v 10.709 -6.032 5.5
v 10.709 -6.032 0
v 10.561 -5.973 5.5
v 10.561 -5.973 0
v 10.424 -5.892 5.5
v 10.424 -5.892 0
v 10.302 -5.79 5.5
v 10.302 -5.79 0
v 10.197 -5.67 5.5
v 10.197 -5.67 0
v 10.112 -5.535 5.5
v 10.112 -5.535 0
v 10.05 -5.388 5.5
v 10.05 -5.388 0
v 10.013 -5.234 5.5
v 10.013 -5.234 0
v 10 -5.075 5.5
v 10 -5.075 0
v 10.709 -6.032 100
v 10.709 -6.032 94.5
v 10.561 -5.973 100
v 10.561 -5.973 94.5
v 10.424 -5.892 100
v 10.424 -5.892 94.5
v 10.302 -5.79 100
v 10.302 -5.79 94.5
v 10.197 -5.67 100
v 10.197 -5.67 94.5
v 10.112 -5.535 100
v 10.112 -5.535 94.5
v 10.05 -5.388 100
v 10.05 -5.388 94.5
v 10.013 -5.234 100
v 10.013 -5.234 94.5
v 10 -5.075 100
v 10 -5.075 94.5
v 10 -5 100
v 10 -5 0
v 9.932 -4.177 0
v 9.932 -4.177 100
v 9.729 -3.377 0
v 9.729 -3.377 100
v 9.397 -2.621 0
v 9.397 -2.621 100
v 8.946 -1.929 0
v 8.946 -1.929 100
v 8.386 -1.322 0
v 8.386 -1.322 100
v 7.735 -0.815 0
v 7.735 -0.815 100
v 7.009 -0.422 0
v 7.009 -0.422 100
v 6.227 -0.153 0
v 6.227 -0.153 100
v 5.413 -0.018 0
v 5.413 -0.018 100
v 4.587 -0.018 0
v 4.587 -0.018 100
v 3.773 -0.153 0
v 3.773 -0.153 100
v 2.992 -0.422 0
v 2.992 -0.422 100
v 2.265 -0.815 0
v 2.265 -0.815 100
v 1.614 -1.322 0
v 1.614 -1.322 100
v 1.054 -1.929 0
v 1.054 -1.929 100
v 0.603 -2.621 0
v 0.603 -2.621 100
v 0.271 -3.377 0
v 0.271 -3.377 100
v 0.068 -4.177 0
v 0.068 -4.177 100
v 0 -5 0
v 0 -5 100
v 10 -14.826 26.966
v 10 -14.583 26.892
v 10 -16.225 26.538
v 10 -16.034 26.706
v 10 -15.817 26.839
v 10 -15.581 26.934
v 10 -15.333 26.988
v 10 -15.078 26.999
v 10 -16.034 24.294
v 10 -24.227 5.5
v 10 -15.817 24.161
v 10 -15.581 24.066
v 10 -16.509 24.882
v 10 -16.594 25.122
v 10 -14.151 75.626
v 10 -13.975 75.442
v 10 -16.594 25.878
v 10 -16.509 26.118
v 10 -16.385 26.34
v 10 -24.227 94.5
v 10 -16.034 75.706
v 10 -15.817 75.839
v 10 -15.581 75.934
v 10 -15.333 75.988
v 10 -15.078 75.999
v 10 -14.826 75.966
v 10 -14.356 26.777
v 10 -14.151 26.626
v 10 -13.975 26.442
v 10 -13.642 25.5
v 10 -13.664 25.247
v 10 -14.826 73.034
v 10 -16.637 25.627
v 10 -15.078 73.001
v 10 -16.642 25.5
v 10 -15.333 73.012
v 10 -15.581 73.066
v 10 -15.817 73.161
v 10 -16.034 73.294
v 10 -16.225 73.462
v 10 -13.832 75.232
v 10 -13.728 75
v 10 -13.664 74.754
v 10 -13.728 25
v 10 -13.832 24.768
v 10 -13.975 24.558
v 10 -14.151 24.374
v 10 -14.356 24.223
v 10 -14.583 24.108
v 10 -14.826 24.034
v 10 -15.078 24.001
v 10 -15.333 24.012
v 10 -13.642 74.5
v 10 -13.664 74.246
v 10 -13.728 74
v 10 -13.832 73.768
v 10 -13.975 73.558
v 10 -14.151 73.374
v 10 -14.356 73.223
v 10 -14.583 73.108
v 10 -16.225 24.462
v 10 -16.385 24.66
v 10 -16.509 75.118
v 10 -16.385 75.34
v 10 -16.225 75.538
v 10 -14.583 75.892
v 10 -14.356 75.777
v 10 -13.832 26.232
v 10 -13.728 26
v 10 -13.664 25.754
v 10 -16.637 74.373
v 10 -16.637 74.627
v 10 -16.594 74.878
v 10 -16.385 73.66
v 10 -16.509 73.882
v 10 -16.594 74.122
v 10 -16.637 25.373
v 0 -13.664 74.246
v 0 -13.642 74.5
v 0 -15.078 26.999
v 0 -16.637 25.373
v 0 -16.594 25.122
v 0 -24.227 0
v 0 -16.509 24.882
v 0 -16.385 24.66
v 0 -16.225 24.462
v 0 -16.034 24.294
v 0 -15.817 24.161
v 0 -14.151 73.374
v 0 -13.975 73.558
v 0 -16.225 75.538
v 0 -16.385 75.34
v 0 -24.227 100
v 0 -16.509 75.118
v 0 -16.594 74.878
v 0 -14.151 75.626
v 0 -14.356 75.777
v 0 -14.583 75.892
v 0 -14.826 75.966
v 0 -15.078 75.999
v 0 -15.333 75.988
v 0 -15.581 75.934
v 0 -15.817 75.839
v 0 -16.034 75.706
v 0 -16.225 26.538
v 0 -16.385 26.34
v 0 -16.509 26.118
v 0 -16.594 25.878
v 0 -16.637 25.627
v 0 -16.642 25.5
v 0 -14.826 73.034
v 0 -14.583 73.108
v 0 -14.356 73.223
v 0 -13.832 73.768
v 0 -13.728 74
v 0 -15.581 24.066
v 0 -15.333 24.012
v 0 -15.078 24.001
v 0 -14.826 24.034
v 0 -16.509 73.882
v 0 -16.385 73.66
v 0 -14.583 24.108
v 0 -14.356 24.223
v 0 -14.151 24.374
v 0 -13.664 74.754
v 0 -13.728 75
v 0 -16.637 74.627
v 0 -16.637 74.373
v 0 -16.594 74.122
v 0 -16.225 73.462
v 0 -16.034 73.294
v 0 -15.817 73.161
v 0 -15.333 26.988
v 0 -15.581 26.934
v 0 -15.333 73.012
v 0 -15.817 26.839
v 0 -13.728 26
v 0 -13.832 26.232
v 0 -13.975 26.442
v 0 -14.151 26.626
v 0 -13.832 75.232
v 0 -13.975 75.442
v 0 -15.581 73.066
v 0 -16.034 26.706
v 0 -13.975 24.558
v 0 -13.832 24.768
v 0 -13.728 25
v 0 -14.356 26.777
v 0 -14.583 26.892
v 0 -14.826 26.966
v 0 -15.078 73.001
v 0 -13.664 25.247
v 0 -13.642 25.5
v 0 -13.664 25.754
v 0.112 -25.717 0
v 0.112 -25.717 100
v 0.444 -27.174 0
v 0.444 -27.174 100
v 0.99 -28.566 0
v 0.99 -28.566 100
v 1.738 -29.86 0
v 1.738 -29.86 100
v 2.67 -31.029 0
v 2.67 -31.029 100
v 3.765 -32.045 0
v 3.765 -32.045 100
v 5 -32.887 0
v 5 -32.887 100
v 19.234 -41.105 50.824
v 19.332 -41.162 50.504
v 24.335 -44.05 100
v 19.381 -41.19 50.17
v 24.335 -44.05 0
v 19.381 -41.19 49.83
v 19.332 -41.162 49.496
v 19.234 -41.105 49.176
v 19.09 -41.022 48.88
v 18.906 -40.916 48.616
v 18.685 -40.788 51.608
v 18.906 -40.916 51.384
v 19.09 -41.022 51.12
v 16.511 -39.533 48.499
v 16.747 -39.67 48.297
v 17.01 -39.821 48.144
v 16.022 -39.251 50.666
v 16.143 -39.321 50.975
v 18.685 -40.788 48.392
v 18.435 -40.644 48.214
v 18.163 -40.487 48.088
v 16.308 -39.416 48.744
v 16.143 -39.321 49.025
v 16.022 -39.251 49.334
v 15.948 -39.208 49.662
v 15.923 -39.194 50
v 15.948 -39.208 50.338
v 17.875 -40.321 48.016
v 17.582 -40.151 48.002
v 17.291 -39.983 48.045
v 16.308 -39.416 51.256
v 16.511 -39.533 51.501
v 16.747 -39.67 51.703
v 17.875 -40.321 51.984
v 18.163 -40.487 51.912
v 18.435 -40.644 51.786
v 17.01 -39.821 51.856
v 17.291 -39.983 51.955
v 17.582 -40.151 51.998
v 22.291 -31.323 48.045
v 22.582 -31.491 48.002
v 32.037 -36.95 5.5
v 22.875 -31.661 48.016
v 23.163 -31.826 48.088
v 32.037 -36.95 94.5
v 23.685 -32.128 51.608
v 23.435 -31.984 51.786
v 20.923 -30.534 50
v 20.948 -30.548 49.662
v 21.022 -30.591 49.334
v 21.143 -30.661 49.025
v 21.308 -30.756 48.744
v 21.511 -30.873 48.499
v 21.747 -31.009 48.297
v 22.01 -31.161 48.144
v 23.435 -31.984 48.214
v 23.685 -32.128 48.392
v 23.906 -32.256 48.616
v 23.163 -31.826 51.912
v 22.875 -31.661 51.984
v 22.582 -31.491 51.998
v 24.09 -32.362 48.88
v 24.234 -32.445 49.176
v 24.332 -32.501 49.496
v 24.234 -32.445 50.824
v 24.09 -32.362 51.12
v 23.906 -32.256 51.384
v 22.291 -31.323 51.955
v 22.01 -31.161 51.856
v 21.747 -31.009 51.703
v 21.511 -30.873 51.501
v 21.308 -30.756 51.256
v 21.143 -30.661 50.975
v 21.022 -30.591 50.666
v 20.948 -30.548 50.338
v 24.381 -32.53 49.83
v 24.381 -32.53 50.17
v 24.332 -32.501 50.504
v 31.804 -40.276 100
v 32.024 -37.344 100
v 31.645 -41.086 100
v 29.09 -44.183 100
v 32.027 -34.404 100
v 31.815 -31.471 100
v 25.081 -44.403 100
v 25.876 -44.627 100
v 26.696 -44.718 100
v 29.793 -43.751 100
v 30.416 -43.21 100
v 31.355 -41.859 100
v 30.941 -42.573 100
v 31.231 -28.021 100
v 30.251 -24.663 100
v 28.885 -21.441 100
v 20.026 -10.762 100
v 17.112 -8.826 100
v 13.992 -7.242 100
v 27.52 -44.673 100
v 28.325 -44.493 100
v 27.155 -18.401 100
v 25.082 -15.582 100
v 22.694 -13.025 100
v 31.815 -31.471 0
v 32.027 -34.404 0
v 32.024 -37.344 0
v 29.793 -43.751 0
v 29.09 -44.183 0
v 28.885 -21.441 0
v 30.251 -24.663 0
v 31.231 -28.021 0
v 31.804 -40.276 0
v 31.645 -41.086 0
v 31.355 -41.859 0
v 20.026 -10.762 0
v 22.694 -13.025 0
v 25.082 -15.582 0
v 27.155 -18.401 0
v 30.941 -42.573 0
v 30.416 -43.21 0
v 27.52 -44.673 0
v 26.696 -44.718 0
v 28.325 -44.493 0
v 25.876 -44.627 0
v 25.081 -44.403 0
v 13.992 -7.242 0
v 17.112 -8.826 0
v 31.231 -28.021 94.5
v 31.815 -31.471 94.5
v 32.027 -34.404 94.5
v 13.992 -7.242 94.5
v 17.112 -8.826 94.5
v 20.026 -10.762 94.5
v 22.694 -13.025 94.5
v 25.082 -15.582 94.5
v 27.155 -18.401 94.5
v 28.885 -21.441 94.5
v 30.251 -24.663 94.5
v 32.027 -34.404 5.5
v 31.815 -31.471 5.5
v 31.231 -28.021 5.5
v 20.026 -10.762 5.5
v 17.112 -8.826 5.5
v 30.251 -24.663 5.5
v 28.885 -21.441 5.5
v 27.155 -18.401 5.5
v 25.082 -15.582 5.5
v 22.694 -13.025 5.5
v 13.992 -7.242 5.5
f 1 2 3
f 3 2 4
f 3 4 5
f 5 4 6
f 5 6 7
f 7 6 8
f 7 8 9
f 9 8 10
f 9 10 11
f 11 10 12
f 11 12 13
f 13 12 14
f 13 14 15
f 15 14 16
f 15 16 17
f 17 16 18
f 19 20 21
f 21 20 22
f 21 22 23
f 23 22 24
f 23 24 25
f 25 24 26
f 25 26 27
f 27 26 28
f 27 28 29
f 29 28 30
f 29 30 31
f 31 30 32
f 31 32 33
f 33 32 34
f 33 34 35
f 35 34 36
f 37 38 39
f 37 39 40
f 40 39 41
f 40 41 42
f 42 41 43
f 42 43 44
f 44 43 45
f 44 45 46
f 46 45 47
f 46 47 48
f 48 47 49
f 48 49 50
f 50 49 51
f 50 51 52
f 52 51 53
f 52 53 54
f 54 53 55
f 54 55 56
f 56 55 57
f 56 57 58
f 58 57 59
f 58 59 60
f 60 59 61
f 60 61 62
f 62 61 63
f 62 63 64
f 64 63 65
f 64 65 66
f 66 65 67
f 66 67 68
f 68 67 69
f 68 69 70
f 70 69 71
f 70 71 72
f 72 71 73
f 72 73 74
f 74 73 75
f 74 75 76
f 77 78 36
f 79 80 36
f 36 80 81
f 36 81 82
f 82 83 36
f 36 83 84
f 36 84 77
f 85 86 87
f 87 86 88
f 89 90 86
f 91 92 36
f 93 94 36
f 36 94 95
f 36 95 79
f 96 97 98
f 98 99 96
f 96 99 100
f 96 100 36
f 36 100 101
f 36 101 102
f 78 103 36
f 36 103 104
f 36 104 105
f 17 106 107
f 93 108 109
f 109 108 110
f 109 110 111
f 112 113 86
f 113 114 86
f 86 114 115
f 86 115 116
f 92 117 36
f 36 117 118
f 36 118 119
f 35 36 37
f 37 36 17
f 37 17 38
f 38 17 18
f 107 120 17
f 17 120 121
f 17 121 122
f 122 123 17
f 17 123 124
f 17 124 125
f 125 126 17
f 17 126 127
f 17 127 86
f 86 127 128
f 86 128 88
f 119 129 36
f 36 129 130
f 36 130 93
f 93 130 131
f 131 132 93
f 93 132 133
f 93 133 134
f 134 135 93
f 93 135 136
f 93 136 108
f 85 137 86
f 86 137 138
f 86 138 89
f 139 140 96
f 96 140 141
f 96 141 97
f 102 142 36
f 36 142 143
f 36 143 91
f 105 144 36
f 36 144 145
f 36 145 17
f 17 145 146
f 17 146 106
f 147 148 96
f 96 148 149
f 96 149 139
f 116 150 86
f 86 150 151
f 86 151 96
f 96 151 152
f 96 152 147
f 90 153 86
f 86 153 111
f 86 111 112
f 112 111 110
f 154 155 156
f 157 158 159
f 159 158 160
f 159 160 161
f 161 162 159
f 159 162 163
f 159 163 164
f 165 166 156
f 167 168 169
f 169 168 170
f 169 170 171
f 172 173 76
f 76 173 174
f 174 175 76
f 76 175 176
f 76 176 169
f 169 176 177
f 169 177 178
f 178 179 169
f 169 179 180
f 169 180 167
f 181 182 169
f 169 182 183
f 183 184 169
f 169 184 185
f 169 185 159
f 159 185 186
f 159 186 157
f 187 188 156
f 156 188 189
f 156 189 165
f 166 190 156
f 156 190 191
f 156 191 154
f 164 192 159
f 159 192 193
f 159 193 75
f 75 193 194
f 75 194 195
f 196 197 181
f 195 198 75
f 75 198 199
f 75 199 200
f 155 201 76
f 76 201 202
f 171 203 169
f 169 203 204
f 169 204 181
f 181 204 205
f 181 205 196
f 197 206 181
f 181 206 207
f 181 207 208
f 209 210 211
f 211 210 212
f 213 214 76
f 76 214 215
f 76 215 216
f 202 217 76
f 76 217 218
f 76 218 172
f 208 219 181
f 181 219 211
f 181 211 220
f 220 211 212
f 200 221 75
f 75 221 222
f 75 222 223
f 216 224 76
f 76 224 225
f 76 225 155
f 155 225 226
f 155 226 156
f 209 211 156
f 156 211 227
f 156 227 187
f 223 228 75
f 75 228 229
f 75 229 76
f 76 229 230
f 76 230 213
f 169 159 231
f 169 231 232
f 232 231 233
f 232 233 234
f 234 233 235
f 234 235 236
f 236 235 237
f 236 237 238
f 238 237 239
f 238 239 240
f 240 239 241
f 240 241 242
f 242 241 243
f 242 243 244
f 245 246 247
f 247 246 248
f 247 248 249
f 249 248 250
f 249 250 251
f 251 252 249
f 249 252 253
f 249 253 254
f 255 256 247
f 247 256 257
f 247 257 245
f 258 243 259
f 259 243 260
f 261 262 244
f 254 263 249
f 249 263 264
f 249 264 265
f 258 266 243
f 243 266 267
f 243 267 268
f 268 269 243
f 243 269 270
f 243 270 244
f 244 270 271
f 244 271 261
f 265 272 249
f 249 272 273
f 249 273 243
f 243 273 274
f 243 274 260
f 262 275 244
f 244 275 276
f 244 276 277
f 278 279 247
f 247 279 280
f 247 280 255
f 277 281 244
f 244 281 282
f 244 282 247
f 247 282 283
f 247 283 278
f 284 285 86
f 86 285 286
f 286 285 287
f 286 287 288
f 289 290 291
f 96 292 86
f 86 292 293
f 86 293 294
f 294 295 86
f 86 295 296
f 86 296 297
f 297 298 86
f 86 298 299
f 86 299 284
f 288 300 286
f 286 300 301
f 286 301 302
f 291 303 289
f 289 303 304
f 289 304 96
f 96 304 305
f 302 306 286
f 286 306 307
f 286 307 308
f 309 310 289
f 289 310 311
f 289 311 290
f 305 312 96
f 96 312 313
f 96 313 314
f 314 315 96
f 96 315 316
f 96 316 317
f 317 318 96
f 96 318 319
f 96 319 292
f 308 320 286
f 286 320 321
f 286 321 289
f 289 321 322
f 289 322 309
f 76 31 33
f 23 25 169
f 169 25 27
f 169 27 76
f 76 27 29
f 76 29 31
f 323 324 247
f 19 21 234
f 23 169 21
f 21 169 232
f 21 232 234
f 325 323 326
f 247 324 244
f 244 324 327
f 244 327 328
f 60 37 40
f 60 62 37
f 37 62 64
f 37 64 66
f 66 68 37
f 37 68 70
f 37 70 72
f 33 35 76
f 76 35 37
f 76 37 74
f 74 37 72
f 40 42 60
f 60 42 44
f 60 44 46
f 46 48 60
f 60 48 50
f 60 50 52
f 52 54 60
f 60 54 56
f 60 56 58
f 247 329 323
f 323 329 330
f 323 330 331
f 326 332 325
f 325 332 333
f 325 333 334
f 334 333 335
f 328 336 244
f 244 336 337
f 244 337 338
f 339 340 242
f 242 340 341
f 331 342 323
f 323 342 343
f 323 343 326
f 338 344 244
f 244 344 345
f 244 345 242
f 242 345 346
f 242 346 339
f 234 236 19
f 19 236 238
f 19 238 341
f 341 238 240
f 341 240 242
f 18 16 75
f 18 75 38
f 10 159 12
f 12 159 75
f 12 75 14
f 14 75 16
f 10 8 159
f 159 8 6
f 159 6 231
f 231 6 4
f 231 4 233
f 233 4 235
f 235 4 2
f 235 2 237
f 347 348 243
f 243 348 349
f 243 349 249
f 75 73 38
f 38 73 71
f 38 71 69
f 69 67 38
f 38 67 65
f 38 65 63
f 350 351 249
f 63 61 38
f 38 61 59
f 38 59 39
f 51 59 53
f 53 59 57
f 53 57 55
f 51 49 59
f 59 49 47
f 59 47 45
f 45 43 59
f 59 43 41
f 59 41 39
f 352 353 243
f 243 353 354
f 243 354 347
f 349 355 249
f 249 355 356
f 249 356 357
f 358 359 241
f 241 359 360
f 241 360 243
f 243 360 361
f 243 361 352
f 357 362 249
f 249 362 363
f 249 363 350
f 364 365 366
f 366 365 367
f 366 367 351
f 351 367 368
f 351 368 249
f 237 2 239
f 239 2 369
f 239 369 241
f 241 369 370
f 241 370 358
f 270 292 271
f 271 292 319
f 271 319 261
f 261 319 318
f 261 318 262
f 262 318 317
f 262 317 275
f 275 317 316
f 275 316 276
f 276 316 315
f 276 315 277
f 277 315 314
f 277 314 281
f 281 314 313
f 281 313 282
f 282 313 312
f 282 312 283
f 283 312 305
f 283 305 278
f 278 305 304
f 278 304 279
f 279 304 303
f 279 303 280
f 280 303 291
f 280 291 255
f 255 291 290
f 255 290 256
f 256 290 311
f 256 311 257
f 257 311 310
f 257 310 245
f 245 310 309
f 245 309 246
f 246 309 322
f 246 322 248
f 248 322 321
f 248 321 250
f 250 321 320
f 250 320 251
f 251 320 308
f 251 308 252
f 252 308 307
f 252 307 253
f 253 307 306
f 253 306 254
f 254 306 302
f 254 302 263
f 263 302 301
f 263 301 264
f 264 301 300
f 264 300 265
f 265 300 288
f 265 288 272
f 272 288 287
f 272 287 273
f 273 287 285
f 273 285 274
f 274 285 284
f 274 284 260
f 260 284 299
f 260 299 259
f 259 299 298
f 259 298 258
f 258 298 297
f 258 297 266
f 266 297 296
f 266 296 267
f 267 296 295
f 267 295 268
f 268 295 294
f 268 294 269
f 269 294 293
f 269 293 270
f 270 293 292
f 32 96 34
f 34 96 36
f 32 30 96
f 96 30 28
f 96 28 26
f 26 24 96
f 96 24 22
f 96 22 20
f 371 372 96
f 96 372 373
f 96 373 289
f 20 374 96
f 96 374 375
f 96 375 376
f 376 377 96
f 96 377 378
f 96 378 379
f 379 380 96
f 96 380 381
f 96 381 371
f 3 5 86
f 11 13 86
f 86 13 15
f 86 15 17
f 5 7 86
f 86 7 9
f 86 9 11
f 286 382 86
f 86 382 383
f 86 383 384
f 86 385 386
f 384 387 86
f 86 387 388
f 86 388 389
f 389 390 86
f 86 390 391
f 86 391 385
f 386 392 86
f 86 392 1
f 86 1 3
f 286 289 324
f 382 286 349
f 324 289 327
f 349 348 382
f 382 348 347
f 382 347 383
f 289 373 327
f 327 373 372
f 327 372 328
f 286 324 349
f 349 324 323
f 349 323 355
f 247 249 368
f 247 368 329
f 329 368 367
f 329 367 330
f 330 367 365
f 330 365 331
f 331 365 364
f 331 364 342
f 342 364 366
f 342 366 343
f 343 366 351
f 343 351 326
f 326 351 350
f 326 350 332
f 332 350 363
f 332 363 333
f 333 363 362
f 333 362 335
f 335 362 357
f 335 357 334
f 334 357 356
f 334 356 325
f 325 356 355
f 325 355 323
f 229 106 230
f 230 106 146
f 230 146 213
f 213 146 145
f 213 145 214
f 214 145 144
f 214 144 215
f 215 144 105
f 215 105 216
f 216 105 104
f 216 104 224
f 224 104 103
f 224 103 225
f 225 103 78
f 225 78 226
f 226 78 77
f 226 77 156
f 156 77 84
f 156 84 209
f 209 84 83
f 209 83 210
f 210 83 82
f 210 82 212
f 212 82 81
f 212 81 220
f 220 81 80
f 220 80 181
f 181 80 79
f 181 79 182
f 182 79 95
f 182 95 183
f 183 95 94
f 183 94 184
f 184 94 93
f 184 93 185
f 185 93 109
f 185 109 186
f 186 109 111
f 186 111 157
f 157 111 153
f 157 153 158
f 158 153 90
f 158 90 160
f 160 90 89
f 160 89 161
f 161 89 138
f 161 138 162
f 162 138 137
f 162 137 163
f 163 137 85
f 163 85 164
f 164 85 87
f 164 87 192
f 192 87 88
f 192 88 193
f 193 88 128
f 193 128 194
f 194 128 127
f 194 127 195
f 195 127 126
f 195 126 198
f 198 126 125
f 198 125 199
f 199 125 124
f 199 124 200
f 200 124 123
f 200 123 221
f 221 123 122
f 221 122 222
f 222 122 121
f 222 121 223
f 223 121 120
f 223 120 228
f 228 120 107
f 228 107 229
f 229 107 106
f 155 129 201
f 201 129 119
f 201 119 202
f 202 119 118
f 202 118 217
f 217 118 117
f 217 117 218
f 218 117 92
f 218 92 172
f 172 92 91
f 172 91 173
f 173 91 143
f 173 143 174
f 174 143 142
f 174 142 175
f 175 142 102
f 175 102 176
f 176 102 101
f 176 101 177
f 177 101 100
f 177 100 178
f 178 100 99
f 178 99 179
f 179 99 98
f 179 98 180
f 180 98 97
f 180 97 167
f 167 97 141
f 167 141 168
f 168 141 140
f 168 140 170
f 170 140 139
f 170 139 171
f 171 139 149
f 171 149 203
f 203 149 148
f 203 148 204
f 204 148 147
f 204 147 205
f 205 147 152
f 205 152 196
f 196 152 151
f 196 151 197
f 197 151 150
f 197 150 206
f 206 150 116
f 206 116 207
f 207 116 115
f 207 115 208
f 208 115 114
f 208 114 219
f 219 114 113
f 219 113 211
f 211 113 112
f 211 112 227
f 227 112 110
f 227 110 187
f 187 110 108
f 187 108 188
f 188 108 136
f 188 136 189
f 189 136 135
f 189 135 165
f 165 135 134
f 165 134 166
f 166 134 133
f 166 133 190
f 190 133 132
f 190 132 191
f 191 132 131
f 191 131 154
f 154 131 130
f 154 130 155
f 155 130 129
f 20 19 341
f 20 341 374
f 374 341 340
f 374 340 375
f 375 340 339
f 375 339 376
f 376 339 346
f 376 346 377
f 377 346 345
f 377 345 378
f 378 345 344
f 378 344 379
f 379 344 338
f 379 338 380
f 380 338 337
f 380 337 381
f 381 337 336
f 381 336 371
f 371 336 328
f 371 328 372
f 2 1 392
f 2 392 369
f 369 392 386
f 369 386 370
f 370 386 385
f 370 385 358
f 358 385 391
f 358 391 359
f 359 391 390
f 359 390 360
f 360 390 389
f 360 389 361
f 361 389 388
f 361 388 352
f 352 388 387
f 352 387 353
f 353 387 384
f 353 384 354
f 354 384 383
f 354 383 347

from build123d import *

# Parameters (mm, degrees)
BOSS_EXTRU_1_DEPTH      = 100
ESQUISSE3_R             = 2
ENL_V_MAT_EXTRU_2_DEPTH = 115.052675119
ESQUISSE7_W             = 5.5
ESQUISSE7_H             = 20.980762114
BOSS_EXTRU_3_DEPTH      = 29.226497
BOSS_EXTRU_4_OUTLINE_W  = 5.5
BOSS_EXTRU_4_OUTLINE_H  = 18.169872981
BOSS_EXTRU_4_DEPTH      = 10.490381057
CONG_2_R                = 40
CONG_3_R                = 40
CONG_4_R                = 5
CONG_5_RADIUS           = 5
CONG_5_LENGTH           = 100
ESQUISSE9_R             = 1.5
ENL_V_MAT_EXTRU_3_DEPTH = 112.741489915
CONG_6_R                = 1
CONG_7_R                = 1
CONG_8_R                = 30


# Read off the part's stored shape, not the designer's step: Boss.-Extru.4
with BuildPart() as part:
    # Esquisse1 → Boss.-Extru.1 (new body)
    with BuildSketch(Plane.XY):
        with BuildLine():
            Line((0, 0), (0, -24.226497308))
            ThreePointArc((0, -24.226497308), (1.339745962, -29.226497308), (5, -32.886751346))
            Line((5, -32.886751346), (30.310889132, -47.5))
            Line((30.310889132, -47.5), (35.310889132, -38.839745962))
            Line((35.310889132, -38.839745962), (10, -24.226497308))
            Line((10, -24.226497308), (10, 0))
            Line((10, 0), (0, 0))
        make_face()
    extrude(amount=BOSS_EXTRU_1_DEPTH)

    # Esquisse3 → Enlèv. mat.-Extru.2 (cut, through all)
    with BuildSketch(Plane(origin=(-7.990381057, -13.839745962, 0), x_dir=(0.86602540378444, -0.4999999999999978, 0), z_dir=(0.4999999999999978, 0.86602540378444, 0))):
        with Locations(Location((35.386751346, -50, 0), (0, 0, 180))):
            Circle(ESQUISSE3_R)
    extrude(amount=-ENL_V_MAT_EXTRU_2_DEPTH, mode=Mode.SUBTRACT)

    # Esquisse7 → Boss.-Extru.3 (add)
    with BuildSketch(Plane(origin=(43.301270189, -25, 0), x_dir=(0, 0, -1), z_dir=(0.86602540378444, -0.49999999999999756, 0))):
        with Locations((-97.25, -5.490381057)):
            Rectangle(ESQUISSE7_W, ESQUISSE7_H)
        with Locations((-2.75, -5.490381057)):
            Rectangle(ESQUISSE7_W, ESQUISSE7_H)
    extrude(amount=-BOSS_EXTRU_3_DEPTH)

    # Boss.-Extru.4 outline → Boss.-Extru.4 (add)
    with BuildSketch(Plane(origin=(10, 0, 0), x_dir=(0, 0, -1), z_dir=(1, 0, 0))):
        with Locations((-2.75, -15.141560818)):
            Rectangle(BOSS_EXTRU_4_OUTLINE_W, BOSS_EXTRU_4_OUTLINE_H)
        with Locations((-97.25, -15.141560818)):
            Rectangle(BOSS_EXTRU_4_OUTLINE_W, BOSS_EXTRU_4_OUTLINE_H)
    extrude(amount=BOSS_EXTRU_4_DEPTH)

    # Congé2
    # the kernel refuses this fillet: 40 mm, written as the material it takes off along each edge
    with BuildSketch(Plane(origin=(20.490381057, -6.056624327, 32.29491991), x_dir=(-1, 0, 0), z_dir=(0, 0, -1))) as cong_2_piece_1_section:
        with BuildLine():
            CenterArc((CONG_2_R * 0.267949192431, -CONG_2_R), CONG_2_R, 90, 30)
            Line((-CONG_2_R * 0.232050807569, -CONG_2_R * 0.133974596216), (0, 0))
            Line((0, 0), (CONG_2_R * 0.267949192431, 0))
        make_face()
    cong_2_piece_1 = extrude(amount=59.089839821, mode=Mode.PRIVATE)
    cong_2_piece_1 = split(cong_2_piece_1, bisect_by=Plane(origin=(10, -7.066001807, 2.75), z_dir=(1, 0, 0)), keep=Keep.TOP, mode=Mode.PRIVATE)
    add(cong_2_piece_1, mode=Mode.SUBTRACT)
    with BuildSketch(Plane(origin=(20.490381057, -6.056624327, 67.70508009), x_dir=(-1, 0, 0), z_dir=(0, 0, 1))) as cong_2_piece_2_section:
        with BuildLine():
            CenterArc((CONG_2_R * 0.267949192431, CONG_2_R), CONG_2_R, 240, 30)
            Line((-CONG_2_R * 0.232050807569, CONG_2_R * 0.133974596216), (0, 0))
            Line((0, 0), (CONG_2_R * 0.267949192431, 0))
        make_face()
    cong_2_piece_2 = extrude(amount=59.089839821, mode=Mode.PRIVATE)
    cong_2_piece_2 = split(cong_2_piece_2, bisect_by=Plane(origin=(10, -7.066001807, 97.25), z_dir=(1, 0, 0)), keep=Keep.TOP, mode=Mode.PRIVATE)
    add(cong_2_piece_2, mode=Mode.SUBTRACT)

    # Congé3
    # the kernel refuses this fillet: 40 mm, written as the material it takes off along each edge
    with BuildSketch(Plane(origin=(45.801270189, -20.669872981, -2.92475776), x_dir=(-0.8660254037844402, 0.49999999999999756, 0), z_dir=(0, 0, 1))) as cong_3_piece_1:
        with BuildLine():
            CenterArc((38.969903104, 40), CONG_3_R, 193.031161189, 76.968838811)
            Line((0, 30.980762114), (-0.779398062, 30.800377356))
            ThreePointArc((-0.779398062, 30.800377356), (-0.8, 15.490381057), (-0.8, 0))
            Line((-0.8, 0), (0, -0.8))
            Line((0, -0.8), (38.969903104, -0.8))
            Line((38.969903104, -0.8), (38.969903104, 0))
        make_face()
    extrude(amount=200.349515521, mode=Mode.SUBTRACT)

    # Congé4
    cong_4_edges = [part.edges().sort_by_distance(p)[0] for p in [
        (30.310889132, -47.5, 50),
    ]]
    fillet(cong_4_edges, radius=CONG_4_R)

    # Congé5: full round fillet: the end face becomes a half cylinder, R = half its width
    cong_5_face = Plane((5, 0, 50), x_dir=(0, 0, -1), z_dir=(0, 1, 0))  # on the end face: x along it, z out of the body
    cong_5_slab = cong_5_face.offset(-CONG_5_RADIUS / 2) * Box(CONG_5_LENGTH, 2 * CONG_5_RADIUS, CONG_5_RADIUS, mode=Mode.PRIVATE)  # the body's end, R deep
    cong_5_round = Plane((5, -5, 50), x_dir=(0, 1, 0), z_dir=(0, 0, -1)) * Cylinder(CONG_5_RADIUS, CONG_5_LENGTH, mode=Mode.PRIVATE)  # its axis R under the face
    add(cong_5_slab - cong_5_round, mode=Mode.SUBTRACT)

    # Esquisse9 → Enlèv. mat.-Extru.3 (cut, through all)
    with BuildSketch(Plane(origin=(10, 0, 0), x_dir=(0, 0, -1), z_dir=(1, 0, 0))):
        with Locations(Location((-74.5, -15.141560818, 0), (0, 0, 90))):
            Circle(ESQUISSE9_R)
        with Locations(Location((-25.5, -15.141560818, 0), (0, 0, 270))):
            Circle(ESQUISSE9_R)
    extrude(amount=-ENL_V_MAT_EXTRU_3_DEPTH, mode=Mode.SUBTRACT)

    # Congé6
    cong_6_edges = [part.edges().sort_by_distance(p)[0] for p in [
        (10, -6.057271778, 97.25),
    ]]
    fillet(cong_6_edges, radius=CONG_6_R)

    # Congé7
    cong_7_edges = [part.edges().sort_by_distance(p)[0] for p in [
        (10, -6.057271778, 2.75),
    ]]
    fillet(cong_7_edges, radius=CONG_7_R)

    # Congé8
    cong_8_edges = [part.edges().sort_by_distance(p)[0] for p in [
        (20.24714696, -7.452480042, 97.25),
        (20.24714696, -7.452480042, 2.75),
    ]]
    fillet(cong_8_edges, radius=CONG_8_R)


solid = part.part
